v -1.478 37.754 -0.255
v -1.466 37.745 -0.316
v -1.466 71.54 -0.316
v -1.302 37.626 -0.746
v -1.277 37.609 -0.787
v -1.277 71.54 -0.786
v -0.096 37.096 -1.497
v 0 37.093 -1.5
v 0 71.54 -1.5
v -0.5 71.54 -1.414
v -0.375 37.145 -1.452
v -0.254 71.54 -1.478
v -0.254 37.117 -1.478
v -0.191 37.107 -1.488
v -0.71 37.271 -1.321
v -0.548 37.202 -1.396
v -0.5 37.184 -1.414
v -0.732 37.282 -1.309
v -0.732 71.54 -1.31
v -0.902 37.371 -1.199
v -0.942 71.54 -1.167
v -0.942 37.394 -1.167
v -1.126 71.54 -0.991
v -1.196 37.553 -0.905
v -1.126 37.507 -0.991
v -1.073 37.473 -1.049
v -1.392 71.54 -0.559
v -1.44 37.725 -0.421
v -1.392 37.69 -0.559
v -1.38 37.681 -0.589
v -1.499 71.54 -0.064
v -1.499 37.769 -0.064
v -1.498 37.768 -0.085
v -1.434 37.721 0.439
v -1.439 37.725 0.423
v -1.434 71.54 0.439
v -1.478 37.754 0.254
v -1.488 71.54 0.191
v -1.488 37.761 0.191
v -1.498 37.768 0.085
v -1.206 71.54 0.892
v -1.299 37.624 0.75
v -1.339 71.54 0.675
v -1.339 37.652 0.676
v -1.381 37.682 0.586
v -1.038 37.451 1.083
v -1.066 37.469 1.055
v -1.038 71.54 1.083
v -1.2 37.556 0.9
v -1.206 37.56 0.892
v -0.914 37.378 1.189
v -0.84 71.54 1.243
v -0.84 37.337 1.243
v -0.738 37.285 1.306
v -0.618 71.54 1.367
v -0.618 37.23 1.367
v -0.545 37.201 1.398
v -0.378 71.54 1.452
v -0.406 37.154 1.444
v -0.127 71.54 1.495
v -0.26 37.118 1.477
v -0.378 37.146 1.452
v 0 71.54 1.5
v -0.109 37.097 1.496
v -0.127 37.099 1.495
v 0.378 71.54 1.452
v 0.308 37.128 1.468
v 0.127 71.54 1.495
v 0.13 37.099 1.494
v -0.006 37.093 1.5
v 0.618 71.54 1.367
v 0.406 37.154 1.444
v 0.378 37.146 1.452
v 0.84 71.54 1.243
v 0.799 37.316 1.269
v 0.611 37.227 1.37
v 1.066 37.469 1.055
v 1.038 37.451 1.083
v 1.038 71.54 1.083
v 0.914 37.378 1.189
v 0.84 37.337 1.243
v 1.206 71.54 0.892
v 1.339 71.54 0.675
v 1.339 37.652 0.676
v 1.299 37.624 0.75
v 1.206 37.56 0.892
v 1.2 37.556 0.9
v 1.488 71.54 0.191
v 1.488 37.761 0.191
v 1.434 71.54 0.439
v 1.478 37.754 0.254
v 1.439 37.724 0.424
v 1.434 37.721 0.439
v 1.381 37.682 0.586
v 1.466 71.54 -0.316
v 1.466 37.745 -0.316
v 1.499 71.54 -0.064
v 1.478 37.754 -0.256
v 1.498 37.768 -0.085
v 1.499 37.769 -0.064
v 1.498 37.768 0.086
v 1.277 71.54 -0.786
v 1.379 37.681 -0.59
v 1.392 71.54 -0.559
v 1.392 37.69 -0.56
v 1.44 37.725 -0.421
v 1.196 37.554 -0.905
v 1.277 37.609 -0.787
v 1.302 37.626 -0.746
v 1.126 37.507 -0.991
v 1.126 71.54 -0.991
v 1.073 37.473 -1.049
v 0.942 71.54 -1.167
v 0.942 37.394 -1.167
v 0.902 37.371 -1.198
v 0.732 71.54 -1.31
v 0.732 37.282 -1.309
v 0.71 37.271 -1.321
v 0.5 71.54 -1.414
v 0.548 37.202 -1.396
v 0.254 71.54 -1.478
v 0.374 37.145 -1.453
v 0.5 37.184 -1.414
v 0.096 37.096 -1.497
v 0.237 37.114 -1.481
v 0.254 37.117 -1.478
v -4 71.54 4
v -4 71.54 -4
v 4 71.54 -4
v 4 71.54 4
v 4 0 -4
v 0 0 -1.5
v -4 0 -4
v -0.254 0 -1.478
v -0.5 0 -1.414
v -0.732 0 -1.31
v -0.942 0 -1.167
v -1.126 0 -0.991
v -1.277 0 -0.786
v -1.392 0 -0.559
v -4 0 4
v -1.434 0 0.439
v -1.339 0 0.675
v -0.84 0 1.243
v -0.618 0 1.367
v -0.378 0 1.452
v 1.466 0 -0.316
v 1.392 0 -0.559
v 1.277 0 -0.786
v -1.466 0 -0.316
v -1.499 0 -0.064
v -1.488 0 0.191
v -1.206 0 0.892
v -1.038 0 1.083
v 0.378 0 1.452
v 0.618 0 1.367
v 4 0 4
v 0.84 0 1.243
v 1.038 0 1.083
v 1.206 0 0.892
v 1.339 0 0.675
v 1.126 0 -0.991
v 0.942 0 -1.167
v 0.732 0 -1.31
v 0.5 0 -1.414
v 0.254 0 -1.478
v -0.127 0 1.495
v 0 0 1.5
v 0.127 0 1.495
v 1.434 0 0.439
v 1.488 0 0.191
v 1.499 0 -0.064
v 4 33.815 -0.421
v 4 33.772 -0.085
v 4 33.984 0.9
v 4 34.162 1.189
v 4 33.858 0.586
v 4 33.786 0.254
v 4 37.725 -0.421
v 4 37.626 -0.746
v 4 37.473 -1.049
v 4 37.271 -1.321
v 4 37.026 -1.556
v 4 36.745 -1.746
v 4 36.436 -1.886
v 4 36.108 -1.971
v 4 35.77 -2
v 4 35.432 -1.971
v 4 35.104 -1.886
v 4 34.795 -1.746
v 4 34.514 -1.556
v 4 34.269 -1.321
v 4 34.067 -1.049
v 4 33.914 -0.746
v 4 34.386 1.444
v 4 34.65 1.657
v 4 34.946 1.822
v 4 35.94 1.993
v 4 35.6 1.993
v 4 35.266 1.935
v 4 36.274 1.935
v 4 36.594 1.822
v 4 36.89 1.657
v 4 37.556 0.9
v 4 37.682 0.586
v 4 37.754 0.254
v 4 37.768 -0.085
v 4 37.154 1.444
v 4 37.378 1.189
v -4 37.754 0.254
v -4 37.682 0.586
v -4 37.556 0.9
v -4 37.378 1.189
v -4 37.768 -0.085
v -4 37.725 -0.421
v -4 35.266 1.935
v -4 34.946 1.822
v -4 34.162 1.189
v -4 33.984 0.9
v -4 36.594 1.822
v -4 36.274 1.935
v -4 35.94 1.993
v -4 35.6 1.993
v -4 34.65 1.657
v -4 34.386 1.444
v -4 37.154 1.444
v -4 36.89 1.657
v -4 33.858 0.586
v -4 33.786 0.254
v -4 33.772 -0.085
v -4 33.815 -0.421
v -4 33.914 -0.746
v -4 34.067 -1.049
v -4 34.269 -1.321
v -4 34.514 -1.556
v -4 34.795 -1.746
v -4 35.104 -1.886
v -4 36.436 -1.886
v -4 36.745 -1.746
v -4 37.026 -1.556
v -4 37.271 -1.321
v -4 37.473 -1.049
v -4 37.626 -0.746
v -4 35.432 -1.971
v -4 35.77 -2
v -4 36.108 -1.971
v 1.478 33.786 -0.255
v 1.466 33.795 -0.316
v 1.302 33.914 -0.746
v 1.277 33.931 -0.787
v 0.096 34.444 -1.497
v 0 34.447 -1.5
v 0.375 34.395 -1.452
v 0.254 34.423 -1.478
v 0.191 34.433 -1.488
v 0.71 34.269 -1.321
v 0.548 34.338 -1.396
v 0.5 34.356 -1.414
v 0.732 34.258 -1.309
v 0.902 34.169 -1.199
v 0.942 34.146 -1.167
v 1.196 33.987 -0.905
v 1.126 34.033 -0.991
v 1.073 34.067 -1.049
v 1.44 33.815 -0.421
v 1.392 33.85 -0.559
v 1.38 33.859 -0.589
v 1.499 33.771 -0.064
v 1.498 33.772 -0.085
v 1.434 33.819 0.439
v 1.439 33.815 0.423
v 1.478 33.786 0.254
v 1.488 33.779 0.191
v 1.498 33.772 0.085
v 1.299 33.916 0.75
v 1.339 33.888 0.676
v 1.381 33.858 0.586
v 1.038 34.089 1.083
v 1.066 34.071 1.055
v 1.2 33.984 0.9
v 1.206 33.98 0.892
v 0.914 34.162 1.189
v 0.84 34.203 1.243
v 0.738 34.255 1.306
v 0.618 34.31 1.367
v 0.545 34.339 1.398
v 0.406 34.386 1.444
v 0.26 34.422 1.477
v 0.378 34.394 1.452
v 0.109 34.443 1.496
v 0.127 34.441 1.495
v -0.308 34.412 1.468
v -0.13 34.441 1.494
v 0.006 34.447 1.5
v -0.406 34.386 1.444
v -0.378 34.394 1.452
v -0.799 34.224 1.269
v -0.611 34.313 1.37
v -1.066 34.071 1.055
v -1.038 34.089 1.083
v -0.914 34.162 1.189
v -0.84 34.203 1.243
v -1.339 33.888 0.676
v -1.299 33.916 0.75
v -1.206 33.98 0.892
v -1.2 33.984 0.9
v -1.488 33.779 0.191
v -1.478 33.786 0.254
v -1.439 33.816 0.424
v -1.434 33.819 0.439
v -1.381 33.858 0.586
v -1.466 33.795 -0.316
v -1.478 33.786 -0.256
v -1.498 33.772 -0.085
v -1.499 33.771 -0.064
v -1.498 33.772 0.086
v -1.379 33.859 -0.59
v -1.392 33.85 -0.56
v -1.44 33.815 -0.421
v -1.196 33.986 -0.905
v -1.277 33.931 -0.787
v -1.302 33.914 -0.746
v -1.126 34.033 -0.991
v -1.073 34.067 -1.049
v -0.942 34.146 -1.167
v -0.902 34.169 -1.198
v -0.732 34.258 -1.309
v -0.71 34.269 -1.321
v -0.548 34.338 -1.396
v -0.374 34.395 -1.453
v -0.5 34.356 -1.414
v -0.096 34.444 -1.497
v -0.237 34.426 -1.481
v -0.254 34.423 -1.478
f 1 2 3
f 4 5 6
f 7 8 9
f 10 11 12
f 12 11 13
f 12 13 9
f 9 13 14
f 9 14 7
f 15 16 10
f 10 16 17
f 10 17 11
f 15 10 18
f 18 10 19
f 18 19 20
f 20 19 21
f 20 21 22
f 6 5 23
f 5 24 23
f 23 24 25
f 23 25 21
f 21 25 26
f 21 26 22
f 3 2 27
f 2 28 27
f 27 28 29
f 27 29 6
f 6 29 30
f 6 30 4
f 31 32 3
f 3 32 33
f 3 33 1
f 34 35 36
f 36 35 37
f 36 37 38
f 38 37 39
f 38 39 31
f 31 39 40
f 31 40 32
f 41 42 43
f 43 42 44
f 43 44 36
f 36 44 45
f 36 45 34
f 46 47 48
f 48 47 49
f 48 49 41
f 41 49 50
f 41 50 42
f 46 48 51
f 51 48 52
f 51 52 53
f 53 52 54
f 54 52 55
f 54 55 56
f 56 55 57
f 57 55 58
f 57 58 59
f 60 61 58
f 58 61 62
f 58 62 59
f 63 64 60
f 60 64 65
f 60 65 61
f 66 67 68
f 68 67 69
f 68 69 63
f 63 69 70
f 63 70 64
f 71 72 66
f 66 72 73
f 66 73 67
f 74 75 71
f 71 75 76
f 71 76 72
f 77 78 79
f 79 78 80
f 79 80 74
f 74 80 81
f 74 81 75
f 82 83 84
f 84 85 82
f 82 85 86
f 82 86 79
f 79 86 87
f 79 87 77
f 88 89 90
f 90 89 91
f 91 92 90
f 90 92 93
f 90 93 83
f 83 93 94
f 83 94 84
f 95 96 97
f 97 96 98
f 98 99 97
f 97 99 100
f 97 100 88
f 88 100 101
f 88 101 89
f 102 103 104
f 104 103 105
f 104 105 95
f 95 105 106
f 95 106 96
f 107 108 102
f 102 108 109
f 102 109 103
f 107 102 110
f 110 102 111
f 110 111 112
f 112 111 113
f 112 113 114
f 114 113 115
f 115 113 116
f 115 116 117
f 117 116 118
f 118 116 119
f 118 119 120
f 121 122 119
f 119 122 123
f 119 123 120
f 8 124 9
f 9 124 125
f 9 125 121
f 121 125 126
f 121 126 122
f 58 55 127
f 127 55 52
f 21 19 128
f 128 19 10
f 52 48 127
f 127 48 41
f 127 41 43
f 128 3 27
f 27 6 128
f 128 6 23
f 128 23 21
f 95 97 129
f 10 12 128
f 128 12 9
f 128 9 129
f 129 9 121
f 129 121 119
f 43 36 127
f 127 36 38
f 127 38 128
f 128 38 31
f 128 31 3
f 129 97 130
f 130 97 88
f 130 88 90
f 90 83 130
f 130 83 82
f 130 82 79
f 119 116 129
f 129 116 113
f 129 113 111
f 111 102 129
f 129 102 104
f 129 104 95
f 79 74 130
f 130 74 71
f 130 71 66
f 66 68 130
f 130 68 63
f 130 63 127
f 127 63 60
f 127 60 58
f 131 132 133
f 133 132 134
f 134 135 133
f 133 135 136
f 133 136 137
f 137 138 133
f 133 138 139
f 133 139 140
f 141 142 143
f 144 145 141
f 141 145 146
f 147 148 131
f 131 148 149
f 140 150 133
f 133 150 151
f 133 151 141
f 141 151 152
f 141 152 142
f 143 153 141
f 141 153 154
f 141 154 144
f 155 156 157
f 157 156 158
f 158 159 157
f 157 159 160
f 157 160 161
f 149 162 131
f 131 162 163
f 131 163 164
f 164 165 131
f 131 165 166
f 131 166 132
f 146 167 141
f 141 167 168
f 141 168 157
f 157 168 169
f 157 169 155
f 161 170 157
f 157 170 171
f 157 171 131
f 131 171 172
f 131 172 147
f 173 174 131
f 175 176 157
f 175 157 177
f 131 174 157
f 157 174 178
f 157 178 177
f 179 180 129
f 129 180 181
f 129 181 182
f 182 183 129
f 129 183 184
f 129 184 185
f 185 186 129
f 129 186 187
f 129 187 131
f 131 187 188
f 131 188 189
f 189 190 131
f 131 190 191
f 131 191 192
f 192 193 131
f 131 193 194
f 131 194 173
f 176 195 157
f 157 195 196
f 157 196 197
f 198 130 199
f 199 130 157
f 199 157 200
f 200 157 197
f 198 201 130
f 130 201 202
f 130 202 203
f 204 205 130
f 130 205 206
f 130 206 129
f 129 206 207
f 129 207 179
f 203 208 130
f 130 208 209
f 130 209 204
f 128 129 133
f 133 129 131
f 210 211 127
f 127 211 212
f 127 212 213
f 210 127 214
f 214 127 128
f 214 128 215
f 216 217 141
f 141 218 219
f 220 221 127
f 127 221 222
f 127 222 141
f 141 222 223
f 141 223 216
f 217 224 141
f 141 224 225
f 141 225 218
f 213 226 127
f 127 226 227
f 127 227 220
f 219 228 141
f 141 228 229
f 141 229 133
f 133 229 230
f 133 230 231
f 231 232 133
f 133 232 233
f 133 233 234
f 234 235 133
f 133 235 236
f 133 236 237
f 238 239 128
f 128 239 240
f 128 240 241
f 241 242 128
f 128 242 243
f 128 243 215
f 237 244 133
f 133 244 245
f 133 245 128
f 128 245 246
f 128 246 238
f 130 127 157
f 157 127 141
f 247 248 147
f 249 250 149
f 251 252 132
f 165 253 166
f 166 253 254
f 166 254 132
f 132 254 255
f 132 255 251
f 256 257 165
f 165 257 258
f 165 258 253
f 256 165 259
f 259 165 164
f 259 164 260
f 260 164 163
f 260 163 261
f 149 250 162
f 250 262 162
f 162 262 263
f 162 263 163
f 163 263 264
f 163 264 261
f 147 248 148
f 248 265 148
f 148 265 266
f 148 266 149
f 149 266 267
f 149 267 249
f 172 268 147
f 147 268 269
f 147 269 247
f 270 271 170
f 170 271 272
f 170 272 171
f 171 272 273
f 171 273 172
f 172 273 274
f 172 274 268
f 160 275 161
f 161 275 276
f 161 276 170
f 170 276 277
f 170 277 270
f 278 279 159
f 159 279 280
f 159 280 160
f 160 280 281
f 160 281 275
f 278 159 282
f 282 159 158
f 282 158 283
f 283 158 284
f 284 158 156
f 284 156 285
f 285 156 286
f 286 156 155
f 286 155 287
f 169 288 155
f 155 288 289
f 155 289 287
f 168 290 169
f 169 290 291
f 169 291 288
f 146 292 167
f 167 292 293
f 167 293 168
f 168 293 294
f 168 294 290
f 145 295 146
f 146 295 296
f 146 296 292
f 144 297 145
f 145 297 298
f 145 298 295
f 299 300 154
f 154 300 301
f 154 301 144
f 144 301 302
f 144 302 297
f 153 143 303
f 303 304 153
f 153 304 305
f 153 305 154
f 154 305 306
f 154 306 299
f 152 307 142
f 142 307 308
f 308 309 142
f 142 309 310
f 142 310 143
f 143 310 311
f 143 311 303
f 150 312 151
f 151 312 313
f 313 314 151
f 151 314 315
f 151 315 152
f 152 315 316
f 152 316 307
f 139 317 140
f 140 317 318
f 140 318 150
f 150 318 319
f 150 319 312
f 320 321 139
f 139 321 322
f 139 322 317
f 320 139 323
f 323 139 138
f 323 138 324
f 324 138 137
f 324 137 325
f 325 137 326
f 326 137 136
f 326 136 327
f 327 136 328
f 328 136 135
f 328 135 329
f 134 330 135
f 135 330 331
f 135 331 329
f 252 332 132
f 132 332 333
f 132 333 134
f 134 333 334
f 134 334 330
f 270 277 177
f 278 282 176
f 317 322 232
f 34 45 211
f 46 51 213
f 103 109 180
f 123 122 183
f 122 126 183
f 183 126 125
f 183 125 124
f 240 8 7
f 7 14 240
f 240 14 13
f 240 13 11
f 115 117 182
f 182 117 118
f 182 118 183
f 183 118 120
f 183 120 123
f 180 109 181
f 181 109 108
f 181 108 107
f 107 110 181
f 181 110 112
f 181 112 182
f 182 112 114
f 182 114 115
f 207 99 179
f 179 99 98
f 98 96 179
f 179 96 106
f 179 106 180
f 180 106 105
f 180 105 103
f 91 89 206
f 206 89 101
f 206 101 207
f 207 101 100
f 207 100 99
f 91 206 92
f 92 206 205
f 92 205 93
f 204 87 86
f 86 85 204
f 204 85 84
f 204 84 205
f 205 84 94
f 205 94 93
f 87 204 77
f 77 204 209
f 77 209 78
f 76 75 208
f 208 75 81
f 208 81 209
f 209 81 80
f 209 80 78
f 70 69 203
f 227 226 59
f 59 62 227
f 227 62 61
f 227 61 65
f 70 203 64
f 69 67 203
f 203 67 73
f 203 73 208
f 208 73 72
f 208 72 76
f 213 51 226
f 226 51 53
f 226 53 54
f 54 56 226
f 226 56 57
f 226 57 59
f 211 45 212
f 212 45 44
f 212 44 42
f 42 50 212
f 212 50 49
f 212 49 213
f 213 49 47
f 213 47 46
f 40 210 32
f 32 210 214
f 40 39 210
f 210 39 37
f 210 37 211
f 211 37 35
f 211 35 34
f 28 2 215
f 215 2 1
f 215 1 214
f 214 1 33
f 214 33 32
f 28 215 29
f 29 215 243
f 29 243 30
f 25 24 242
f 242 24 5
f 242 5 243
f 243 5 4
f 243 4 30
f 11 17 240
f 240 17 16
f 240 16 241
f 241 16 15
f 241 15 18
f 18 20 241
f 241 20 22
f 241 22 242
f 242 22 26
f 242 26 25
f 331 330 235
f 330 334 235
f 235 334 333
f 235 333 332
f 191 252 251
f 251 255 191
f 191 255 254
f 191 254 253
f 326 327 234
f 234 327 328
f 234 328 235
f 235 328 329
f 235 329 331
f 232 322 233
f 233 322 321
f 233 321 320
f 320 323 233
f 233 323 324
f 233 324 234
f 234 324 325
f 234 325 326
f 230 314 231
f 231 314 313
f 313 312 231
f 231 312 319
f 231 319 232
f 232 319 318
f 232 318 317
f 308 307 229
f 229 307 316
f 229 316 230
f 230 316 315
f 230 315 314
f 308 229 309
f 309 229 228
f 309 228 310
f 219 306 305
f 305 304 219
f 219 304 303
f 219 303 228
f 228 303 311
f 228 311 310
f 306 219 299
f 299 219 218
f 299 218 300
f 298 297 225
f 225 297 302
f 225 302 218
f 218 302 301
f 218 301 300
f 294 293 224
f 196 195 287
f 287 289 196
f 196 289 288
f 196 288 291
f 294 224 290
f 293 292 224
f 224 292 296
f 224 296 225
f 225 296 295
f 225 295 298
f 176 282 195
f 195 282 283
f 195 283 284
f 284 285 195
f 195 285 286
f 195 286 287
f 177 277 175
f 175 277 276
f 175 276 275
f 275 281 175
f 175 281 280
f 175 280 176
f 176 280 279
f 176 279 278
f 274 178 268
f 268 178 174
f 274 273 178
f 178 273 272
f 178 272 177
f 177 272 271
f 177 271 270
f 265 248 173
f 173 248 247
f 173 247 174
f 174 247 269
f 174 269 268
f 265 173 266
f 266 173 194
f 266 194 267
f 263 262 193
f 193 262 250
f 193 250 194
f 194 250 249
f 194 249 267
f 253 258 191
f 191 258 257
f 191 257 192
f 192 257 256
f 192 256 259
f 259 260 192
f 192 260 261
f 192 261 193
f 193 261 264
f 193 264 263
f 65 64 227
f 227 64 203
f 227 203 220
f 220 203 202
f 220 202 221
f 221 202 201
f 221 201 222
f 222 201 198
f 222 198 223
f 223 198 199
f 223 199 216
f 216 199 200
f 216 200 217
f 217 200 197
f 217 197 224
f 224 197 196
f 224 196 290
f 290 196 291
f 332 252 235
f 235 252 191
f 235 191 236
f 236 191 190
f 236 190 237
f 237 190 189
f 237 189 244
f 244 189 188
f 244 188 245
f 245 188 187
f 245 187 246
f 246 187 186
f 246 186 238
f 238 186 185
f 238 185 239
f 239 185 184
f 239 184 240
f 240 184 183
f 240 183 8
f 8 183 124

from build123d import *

# Parameters (mm, degrees)
SKETCH1_W           = 8
SKETCH1_H           = 8
SKETCH1_R           = 1.5
BOSS_EXTRUDE1_DEPTH = 71.54
CUT_EXTRUDE1_REACH  = 74.097
SKETCH2_R           = 2


with BuildPart() as part:
    # Sketch1 → Boss-Extrude1 (new body)
    with BuildSketch(Plane(origin=(0, 0, 0), x_dir=(1, 0, 0), z_dir=(0, 1, 0))):
        Rectangle(SKETCH1_W, SKETCH1_H)
        with Locations(Location((0, 0, 0), (0, 0, 270))):
            Circle(SKETCH1_R, mode=Mode.SUBTRACT)
    extrude(amount=BOSS_EXTRUDE1_DEPTH)

    # Sketch2 → Cut-Extrude1 (cut, up to next)
    with BuildSketch(Plane(origin=(4, 0, 0), x_dir=(0, 0, -1), z_dir=(1, 0, 0)), mode=Mode.PRIVATE) as cut_extrude1_sk1:
        with Locations((0, 35.77)):
            Circle(SKETCH2_R)
    cut_extrude1_tool1 = extrude(cut_extrude1_sk1.sketch, amount=-CUT_EXTRUDE1_REACH, mode=Mode.PRIVATE) & part.part
    add(cut_extrude1_tool1.solids().sort_by_distance((4, 35.77, 0))[0], mode=Mode.SUBTRACT)


solid = part.part
